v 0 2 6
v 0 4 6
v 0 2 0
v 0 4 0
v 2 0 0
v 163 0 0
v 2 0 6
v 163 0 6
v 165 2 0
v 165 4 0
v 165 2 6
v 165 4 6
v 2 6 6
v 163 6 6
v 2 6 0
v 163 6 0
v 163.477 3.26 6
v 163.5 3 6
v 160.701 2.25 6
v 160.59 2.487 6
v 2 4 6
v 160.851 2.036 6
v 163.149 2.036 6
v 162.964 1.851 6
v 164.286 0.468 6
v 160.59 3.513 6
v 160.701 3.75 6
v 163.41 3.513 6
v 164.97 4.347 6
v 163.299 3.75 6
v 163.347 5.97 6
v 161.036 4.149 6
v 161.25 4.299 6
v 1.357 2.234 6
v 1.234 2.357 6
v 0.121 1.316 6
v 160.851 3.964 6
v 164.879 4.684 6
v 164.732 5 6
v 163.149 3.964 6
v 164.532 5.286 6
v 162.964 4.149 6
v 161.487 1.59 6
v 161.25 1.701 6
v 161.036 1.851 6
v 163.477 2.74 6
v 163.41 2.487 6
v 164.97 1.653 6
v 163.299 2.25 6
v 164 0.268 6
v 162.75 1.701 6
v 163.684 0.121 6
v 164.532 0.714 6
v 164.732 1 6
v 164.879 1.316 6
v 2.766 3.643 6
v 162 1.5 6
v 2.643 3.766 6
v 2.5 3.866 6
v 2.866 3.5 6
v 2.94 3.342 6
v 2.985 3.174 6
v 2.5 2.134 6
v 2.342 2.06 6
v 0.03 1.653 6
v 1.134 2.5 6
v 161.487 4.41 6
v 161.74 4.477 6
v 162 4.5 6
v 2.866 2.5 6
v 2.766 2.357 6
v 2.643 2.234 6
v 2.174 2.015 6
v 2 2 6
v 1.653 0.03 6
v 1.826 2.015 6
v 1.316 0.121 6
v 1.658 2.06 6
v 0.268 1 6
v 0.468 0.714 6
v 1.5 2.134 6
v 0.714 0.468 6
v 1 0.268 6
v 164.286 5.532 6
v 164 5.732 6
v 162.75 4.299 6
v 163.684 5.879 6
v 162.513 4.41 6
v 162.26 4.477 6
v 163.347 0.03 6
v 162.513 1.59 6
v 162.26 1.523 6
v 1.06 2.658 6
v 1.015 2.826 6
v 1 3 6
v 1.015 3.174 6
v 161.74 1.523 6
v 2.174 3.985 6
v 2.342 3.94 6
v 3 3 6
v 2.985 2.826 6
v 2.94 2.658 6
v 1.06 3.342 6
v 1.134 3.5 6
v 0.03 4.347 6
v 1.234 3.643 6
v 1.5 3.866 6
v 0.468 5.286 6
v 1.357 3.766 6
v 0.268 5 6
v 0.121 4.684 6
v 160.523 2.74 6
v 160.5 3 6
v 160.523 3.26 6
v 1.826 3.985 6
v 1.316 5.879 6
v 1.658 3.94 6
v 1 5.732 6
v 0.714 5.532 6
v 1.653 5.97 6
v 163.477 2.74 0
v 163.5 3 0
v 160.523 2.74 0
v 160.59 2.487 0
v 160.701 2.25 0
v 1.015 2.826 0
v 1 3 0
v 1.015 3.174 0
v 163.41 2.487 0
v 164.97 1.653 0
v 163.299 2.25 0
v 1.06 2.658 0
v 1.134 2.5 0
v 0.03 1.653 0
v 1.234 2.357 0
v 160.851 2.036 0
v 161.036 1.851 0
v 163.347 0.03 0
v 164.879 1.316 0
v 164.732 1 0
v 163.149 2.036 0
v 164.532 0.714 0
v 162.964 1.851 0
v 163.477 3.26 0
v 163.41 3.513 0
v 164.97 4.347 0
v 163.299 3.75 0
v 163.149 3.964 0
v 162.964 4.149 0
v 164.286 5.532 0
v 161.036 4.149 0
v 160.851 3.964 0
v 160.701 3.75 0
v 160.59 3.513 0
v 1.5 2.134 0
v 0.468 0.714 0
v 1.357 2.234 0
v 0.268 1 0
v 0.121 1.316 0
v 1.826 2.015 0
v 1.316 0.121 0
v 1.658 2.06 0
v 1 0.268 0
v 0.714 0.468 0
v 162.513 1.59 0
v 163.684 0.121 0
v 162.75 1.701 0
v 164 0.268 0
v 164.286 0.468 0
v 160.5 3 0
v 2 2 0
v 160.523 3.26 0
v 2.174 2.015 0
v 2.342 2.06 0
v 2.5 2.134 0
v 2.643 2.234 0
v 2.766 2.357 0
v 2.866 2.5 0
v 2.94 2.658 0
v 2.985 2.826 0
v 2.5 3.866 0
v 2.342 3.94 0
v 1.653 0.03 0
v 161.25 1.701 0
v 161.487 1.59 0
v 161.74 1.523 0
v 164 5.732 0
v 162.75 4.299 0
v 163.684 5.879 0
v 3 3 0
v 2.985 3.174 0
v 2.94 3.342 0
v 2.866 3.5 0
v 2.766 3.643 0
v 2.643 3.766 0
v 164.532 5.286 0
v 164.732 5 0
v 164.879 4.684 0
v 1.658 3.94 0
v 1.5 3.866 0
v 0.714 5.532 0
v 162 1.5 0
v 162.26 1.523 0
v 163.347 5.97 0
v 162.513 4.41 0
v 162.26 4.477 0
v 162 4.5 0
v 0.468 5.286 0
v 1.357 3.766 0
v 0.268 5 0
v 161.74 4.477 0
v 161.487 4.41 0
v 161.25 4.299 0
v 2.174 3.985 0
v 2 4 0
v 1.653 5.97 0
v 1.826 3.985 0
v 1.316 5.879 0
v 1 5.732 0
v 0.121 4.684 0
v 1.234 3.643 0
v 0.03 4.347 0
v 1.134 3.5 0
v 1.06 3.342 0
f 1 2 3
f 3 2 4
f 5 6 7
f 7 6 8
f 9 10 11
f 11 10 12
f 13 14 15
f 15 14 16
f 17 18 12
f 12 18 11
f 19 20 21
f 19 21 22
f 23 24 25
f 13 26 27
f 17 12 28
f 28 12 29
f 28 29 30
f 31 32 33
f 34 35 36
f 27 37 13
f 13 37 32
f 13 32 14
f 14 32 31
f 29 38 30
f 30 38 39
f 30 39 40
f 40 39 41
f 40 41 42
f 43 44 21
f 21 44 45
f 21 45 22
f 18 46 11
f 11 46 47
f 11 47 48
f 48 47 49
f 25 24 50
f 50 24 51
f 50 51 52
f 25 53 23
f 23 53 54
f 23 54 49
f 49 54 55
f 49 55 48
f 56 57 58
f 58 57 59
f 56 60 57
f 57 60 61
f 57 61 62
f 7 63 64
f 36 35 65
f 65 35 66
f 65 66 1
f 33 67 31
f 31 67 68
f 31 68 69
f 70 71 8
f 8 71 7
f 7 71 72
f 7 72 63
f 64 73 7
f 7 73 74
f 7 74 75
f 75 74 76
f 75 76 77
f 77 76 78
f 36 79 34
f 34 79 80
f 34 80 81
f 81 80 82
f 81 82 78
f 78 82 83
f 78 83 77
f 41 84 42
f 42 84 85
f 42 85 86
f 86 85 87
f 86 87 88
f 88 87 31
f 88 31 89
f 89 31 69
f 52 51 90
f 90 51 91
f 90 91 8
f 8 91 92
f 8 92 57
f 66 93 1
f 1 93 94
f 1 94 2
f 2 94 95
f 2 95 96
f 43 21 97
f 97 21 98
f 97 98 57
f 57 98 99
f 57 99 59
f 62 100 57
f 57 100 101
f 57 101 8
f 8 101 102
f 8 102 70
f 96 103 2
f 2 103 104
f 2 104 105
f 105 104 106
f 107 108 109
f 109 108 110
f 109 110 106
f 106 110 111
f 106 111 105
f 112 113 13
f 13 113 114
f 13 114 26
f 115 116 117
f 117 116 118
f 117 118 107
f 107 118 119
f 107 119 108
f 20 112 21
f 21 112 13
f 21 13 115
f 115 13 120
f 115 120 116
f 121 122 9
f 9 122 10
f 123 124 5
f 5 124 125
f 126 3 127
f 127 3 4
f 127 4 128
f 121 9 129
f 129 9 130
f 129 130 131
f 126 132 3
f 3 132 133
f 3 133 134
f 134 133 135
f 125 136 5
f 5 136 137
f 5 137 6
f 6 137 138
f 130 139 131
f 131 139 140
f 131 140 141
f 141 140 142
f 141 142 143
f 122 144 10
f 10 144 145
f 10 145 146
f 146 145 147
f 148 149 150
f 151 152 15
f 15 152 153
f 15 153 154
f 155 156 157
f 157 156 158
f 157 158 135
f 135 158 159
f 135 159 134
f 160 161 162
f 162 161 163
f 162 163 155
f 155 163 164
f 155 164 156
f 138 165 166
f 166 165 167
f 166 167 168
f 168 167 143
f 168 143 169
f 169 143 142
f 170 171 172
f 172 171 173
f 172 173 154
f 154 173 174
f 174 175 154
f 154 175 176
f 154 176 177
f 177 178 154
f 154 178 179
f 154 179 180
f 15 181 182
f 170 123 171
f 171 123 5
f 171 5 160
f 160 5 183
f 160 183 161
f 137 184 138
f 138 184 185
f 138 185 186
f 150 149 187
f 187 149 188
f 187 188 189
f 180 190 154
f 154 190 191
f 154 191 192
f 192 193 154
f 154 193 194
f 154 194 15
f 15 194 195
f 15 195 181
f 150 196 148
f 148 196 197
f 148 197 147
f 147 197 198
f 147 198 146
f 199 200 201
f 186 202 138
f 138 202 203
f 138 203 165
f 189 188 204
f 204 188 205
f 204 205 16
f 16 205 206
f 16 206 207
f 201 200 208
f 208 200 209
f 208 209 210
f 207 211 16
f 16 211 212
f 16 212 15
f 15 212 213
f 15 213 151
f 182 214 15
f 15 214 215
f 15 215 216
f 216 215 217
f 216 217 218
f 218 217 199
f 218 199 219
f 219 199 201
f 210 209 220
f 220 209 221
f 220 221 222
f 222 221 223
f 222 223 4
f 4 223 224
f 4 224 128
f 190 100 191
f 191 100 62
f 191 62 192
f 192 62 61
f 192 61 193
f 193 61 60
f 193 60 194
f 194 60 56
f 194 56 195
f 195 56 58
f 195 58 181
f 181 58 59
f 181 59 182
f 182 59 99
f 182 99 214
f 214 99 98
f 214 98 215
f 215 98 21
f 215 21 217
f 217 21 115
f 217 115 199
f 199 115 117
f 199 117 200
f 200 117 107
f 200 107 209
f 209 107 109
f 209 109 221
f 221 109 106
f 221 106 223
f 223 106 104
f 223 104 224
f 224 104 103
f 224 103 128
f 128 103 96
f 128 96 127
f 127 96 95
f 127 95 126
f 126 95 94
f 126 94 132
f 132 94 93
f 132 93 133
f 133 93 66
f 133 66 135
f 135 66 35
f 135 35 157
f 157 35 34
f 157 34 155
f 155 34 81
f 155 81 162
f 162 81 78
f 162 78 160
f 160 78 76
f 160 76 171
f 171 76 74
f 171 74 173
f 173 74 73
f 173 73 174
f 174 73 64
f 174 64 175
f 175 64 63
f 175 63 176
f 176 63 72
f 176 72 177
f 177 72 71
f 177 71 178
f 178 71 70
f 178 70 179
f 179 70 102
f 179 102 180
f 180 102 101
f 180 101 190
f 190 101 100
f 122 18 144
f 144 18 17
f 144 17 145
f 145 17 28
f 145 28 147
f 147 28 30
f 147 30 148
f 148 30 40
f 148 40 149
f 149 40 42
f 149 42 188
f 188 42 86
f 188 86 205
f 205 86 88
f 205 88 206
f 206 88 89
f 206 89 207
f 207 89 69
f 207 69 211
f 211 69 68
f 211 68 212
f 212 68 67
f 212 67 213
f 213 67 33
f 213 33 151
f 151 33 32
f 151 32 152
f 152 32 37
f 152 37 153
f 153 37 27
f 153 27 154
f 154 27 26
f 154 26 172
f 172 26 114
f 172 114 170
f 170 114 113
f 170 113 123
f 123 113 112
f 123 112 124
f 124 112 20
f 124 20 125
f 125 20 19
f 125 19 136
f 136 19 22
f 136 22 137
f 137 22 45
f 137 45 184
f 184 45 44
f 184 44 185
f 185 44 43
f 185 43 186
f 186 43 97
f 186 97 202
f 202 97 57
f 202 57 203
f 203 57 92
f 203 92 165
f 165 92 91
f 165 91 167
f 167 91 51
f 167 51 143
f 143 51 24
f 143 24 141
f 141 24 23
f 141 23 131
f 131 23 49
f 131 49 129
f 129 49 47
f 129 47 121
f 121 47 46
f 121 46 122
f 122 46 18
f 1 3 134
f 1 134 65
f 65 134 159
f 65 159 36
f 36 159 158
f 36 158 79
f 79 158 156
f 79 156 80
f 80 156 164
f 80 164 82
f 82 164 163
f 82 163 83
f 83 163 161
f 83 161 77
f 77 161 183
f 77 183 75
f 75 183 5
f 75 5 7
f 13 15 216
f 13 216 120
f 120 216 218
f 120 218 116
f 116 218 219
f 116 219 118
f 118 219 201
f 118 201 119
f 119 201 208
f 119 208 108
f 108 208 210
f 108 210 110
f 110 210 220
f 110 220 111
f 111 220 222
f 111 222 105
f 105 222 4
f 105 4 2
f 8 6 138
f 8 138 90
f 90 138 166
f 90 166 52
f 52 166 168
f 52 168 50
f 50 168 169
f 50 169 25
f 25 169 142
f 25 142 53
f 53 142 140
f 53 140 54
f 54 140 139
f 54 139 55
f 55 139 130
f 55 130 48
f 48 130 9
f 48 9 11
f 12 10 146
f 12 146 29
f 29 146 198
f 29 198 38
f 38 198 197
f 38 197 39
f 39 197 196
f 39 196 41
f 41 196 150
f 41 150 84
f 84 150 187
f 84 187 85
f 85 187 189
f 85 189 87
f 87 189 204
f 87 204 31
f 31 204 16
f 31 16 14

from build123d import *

# Parameters (mm, degrees)
ESQUISSE1_W             = 165
ESQUISSE1_H             = 6
BOSS_EXTRU_1_DEPTH      = 6
ESQUISSE2_R             = 1.5
ESQUISSE2_R_2           = 1
ENL_V_MAT_EXTRU_1_DEPTH = 166.218037756
CONG_1_R                = 2


with BuildPart() as part:
    # Esquisse1 → Boss.-Extru.1 (new body)
    with BuildSketch(Plane.XY):
        with Locations((82.5, 3)):
            Rectangle(ESQUISSE1_W, ESQUISSE1_H)
    extrude(amount=BOSS_EXTRU_1_DEPTH)

    # Esquisse2 → Enlèv. mat.-Extru.1 (cut, through all)
    with BuildSketch(Plane.XY.offset(6)):
        with Locations((162, 3)):
            Circle(ESQUISSE2_R)
        with Locations((2, 3)):
            Circle(ESQUISSE2_R_2)
    extrude(amount=-ENL_V_MAT_EXTRU_1_DEPTH, mode=Mode.SUBTRACT)

    # Congé1
    cong_1_edges = [part.edges().sort_by_distance(p)[0] for p in [
        (0, 6, 3),
        (165, 6, 3),
        (165, 0, 3),
        (0, 0, 3),
    ]]
    fillet(cong_1_edges, radius=CONG_1_R)


solid = part.part
